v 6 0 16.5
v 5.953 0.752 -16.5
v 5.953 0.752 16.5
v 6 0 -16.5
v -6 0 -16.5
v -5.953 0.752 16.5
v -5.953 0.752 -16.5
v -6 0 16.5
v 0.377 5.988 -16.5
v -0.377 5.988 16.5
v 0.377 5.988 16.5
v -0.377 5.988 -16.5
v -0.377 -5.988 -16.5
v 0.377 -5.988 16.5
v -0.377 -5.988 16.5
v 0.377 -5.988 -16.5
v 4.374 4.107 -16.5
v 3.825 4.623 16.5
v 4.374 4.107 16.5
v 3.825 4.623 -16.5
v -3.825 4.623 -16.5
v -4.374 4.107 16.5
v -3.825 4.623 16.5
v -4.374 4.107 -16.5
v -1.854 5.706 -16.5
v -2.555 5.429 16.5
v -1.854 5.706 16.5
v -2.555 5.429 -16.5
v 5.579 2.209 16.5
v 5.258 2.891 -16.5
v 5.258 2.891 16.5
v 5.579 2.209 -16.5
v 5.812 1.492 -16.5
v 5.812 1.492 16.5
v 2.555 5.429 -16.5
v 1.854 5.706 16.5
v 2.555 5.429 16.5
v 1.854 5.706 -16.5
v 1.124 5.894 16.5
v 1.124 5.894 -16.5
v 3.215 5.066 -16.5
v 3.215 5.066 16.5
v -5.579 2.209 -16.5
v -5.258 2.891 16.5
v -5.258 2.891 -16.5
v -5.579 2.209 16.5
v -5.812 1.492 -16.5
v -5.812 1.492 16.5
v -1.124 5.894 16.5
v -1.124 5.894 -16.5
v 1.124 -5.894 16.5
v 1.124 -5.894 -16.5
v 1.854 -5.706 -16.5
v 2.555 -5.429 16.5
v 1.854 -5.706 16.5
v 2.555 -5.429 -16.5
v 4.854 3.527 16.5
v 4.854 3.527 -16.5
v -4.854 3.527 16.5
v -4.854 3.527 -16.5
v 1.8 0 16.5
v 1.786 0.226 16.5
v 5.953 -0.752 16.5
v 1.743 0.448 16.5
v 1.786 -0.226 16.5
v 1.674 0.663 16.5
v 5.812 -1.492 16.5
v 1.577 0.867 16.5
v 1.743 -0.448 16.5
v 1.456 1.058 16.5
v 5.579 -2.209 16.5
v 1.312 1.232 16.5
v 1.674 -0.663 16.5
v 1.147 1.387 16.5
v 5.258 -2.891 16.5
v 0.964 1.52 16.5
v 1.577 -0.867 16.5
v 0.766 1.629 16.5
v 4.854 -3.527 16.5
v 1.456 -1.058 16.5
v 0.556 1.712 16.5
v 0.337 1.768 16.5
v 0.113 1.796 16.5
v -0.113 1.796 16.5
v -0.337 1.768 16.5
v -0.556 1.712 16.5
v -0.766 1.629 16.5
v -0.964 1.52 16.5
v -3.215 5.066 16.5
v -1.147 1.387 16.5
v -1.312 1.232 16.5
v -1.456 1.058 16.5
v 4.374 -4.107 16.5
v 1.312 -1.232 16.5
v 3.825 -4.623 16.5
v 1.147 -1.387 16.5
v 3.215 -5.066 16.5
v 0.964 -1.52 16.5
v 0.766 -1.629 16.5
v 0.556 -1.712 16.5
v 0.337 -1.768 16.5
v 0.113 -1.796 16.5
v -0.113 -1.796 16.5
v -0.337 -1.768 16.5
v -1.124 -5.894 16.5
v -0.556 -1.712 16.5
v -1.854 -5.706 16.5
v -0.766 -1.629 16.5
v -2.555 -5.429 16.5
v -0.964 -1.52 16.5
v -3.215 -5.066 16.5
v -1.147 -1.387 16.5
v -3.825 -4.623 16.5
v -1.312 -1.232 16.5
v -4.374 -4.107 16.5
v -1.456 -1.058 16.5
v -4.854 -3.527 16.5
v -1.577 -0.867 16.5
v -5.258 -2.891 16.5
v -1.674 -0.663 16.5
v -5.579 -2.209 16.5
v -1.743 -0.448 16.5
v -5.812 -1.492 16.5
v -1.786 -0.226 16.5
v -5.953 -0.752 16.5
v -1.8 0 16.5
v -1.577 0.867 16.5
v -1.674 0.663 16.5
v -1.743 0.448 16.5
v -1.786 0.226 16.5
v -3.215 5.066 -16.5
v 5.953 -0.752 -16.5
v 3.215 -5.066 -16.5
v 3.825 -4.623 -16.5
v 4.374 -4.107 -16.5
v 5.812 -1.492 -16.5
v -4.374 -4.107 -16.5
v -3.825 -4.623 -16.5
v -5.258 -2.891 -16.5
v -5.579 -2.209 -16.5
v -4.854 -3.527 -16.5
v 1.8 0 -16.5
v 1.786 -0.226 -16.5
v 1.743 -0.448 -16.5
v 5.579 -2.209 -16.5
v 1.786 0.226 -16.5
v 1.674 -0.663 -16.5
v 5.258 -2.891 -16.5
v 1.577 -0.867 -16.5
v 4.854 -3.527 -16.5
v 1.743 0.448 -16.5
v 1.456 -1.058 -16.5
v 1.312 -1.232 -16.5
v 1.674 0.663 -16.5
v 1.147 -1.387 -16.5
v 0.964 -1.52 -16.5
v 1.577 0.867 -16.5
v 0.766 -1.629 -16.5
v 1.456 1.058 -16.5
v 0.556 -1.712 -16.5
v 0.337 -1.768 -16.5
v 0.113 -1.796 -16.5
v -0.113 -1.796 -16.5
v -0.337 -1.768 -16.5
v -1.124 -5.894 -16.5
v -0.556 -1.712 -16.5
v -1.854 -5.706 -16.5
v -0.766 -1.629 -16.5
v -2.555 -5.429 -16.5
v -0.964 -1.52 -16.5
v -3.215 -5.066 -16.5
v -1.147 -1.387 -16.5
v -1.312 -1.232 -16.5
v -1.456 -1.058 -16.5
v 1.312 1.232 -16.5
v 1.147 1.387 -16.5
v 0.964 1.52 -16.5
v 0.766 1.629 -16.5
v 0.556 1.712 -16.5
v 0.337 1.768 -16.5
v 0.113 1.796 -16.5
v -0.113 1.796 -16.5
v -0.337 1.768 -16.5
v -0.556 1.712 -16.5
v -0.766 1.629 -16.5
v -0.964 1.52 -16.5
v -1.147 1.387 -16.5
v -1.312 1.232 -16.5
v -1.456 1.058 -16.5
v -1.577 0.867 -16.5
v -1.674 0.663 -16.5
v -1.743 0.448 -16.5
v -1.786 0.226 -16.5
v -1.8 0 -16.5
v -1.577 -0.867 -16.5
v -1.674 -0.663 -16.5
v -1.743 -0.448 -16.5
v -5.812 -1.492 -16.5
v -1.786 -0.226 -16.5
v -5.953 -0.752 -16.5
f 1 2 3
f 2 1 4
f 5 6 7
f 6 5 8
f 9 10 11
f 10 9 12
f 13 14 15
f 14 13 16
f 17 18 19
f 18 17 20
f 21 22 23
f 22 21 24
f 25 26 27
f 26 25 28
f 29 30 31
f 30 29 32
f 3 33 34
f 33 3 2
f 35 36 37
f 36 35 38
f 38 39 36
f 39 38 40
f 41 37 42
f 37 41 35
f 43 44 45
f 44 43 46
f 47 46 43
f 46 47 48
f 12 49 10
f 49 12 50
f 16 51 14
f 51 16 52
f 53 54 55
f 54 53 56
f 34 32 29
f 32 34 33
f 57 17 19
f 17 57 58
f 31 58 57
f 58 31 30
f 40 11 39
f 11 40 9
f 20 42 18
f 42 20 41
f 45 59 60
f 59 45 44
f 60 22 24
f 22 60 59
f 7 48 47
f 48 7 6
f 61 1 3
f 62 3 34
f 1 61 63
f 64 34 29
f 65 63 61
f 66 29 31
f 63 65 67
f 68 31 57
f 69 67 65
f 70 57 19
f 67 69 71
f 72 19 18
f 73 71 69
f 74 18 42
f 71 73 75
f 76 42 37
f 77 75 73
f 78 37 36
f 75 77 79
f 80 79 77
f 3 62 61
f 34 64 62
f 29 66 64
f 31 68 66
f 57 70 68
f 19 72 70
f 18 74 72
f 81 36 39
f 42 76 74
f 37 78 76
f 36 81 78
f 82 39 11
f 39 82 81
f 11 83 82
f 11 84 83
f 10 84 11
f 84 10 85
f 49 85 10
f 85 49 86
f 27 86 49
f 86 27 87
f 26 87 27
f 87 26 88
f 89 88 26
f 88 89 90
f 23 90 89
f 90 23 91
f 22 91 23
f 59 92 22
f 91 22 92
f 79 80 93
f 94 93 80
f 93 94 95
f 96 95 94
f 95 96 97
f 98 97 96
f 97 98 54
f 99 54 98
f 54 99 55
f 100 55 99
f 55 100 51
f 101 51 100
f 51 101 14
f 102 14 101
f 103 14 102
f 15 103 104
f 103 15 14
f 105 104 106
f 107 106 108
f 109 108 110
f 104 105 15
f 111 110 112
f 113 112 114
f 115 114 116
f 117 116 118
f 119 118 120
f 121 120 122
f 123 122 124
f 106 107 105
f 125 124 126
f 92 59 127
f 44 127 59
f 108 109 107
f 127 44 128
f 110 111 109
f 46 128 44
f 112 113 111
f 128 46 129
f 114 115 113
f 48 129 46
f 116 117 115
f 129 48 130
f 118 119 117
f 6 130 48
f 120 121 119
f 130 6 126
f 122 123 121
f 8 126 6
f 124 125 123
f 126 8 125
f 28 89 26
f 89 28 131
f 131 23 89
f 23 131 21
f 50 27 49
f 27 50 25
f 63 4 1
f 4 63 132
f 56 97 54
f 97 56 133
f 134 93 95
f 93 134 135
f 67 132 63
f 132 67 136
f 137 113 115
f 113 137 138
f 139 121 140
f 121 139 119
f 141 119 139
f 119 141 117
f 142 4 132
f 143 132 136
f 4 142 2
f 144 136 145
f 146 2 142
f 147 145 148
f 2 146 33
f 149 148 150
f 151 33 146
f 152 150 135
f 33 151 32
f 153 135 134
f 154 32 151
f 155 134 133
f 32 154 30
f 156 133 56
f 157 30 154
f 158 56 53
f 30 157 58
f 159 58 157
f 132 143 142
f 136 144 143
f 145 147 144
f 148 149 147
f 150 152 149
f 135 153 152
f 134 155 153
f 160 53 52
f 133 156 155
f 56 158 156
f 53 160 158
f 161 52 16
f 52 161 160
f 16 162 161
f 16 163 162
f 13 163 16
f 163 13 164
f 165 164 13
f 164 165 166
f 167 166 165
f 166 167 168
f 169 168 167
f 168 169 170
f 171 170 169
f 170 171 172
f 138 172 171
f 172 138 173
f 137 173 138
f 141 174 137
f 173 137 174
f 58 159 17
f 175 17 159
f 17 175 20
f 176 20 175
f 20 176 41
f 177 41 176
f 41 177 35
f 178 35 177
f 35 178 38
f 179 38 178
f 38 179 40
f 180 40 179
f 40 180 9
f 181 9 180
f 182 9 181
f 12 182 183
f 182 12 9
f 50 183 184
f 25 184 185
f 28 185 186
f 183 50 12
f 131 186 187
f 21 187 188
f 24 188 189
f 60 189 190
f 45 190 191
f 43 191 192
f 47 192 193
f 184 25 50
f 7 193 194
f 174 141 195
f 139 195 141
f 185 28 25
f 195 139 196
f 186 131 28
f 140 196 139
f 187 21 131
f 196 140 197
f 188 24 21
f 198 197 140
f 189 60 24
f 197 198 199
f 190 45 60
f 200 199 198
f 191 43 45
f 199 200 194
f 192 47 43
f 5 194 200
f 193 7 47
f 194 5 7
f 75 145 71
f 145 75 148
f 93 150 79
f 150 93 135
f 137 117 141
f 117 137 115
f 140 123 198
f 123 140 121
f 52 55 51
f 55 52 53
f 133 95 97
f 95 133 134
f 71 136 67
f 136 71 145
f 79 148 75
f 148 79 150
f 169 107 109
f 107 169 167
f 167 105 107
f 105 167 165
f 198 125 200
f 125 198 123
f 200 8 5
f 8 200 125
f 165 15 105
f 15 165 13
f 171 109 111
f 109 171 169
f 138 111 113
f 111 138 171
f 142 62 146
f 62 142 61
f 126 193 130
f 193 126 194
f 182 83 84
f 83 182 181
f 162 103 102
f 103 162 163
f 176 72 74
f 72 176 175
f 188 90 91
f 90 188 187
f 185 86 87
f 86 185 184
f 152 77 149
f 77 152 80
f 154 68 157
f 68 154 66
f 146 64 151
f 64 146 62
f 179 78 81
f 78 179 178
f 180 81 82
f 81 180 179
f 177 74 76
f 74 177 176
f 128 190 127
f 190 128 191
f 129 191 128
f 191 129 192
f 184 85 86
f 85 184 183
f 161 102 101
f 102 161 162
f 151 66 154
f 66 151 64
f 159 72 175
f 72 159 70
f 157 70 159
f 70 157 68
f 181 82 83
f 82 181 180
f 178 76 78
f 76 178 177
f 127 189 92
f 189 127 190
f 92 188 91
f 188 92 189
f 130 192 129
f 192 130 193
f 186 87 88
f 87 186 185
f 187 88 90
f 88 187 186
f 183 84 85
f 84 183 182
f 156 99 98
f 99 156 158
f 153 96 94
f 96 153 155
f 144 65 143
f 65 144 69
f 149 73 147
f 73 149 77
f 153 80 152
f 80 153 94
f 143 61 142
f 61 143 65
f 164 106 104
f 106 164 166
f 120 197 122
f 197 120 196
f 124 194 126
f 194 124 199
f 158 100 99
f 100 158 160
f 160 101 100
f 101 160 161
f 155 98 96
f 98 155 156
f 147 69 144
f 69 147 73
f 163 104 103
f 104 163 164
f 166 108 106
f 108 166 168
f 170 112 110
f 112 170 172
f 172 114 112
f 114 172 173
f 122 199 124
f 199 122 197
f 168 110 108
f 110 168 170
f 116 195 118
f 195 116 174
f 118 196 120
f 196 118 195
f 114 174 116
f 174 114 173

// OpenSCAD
$fn = 50;


difference() {
	union() {
		translate(v = [0, 0, -16.5000000000]) {
			cylinder(h = 33, r = 6.0000000000);
		}
	}
	union() {
		translate(v = [0, 0, -100.0000000000]) {
			cylinder(h = 200, r = 1.8000000000);
		}
	}
}
